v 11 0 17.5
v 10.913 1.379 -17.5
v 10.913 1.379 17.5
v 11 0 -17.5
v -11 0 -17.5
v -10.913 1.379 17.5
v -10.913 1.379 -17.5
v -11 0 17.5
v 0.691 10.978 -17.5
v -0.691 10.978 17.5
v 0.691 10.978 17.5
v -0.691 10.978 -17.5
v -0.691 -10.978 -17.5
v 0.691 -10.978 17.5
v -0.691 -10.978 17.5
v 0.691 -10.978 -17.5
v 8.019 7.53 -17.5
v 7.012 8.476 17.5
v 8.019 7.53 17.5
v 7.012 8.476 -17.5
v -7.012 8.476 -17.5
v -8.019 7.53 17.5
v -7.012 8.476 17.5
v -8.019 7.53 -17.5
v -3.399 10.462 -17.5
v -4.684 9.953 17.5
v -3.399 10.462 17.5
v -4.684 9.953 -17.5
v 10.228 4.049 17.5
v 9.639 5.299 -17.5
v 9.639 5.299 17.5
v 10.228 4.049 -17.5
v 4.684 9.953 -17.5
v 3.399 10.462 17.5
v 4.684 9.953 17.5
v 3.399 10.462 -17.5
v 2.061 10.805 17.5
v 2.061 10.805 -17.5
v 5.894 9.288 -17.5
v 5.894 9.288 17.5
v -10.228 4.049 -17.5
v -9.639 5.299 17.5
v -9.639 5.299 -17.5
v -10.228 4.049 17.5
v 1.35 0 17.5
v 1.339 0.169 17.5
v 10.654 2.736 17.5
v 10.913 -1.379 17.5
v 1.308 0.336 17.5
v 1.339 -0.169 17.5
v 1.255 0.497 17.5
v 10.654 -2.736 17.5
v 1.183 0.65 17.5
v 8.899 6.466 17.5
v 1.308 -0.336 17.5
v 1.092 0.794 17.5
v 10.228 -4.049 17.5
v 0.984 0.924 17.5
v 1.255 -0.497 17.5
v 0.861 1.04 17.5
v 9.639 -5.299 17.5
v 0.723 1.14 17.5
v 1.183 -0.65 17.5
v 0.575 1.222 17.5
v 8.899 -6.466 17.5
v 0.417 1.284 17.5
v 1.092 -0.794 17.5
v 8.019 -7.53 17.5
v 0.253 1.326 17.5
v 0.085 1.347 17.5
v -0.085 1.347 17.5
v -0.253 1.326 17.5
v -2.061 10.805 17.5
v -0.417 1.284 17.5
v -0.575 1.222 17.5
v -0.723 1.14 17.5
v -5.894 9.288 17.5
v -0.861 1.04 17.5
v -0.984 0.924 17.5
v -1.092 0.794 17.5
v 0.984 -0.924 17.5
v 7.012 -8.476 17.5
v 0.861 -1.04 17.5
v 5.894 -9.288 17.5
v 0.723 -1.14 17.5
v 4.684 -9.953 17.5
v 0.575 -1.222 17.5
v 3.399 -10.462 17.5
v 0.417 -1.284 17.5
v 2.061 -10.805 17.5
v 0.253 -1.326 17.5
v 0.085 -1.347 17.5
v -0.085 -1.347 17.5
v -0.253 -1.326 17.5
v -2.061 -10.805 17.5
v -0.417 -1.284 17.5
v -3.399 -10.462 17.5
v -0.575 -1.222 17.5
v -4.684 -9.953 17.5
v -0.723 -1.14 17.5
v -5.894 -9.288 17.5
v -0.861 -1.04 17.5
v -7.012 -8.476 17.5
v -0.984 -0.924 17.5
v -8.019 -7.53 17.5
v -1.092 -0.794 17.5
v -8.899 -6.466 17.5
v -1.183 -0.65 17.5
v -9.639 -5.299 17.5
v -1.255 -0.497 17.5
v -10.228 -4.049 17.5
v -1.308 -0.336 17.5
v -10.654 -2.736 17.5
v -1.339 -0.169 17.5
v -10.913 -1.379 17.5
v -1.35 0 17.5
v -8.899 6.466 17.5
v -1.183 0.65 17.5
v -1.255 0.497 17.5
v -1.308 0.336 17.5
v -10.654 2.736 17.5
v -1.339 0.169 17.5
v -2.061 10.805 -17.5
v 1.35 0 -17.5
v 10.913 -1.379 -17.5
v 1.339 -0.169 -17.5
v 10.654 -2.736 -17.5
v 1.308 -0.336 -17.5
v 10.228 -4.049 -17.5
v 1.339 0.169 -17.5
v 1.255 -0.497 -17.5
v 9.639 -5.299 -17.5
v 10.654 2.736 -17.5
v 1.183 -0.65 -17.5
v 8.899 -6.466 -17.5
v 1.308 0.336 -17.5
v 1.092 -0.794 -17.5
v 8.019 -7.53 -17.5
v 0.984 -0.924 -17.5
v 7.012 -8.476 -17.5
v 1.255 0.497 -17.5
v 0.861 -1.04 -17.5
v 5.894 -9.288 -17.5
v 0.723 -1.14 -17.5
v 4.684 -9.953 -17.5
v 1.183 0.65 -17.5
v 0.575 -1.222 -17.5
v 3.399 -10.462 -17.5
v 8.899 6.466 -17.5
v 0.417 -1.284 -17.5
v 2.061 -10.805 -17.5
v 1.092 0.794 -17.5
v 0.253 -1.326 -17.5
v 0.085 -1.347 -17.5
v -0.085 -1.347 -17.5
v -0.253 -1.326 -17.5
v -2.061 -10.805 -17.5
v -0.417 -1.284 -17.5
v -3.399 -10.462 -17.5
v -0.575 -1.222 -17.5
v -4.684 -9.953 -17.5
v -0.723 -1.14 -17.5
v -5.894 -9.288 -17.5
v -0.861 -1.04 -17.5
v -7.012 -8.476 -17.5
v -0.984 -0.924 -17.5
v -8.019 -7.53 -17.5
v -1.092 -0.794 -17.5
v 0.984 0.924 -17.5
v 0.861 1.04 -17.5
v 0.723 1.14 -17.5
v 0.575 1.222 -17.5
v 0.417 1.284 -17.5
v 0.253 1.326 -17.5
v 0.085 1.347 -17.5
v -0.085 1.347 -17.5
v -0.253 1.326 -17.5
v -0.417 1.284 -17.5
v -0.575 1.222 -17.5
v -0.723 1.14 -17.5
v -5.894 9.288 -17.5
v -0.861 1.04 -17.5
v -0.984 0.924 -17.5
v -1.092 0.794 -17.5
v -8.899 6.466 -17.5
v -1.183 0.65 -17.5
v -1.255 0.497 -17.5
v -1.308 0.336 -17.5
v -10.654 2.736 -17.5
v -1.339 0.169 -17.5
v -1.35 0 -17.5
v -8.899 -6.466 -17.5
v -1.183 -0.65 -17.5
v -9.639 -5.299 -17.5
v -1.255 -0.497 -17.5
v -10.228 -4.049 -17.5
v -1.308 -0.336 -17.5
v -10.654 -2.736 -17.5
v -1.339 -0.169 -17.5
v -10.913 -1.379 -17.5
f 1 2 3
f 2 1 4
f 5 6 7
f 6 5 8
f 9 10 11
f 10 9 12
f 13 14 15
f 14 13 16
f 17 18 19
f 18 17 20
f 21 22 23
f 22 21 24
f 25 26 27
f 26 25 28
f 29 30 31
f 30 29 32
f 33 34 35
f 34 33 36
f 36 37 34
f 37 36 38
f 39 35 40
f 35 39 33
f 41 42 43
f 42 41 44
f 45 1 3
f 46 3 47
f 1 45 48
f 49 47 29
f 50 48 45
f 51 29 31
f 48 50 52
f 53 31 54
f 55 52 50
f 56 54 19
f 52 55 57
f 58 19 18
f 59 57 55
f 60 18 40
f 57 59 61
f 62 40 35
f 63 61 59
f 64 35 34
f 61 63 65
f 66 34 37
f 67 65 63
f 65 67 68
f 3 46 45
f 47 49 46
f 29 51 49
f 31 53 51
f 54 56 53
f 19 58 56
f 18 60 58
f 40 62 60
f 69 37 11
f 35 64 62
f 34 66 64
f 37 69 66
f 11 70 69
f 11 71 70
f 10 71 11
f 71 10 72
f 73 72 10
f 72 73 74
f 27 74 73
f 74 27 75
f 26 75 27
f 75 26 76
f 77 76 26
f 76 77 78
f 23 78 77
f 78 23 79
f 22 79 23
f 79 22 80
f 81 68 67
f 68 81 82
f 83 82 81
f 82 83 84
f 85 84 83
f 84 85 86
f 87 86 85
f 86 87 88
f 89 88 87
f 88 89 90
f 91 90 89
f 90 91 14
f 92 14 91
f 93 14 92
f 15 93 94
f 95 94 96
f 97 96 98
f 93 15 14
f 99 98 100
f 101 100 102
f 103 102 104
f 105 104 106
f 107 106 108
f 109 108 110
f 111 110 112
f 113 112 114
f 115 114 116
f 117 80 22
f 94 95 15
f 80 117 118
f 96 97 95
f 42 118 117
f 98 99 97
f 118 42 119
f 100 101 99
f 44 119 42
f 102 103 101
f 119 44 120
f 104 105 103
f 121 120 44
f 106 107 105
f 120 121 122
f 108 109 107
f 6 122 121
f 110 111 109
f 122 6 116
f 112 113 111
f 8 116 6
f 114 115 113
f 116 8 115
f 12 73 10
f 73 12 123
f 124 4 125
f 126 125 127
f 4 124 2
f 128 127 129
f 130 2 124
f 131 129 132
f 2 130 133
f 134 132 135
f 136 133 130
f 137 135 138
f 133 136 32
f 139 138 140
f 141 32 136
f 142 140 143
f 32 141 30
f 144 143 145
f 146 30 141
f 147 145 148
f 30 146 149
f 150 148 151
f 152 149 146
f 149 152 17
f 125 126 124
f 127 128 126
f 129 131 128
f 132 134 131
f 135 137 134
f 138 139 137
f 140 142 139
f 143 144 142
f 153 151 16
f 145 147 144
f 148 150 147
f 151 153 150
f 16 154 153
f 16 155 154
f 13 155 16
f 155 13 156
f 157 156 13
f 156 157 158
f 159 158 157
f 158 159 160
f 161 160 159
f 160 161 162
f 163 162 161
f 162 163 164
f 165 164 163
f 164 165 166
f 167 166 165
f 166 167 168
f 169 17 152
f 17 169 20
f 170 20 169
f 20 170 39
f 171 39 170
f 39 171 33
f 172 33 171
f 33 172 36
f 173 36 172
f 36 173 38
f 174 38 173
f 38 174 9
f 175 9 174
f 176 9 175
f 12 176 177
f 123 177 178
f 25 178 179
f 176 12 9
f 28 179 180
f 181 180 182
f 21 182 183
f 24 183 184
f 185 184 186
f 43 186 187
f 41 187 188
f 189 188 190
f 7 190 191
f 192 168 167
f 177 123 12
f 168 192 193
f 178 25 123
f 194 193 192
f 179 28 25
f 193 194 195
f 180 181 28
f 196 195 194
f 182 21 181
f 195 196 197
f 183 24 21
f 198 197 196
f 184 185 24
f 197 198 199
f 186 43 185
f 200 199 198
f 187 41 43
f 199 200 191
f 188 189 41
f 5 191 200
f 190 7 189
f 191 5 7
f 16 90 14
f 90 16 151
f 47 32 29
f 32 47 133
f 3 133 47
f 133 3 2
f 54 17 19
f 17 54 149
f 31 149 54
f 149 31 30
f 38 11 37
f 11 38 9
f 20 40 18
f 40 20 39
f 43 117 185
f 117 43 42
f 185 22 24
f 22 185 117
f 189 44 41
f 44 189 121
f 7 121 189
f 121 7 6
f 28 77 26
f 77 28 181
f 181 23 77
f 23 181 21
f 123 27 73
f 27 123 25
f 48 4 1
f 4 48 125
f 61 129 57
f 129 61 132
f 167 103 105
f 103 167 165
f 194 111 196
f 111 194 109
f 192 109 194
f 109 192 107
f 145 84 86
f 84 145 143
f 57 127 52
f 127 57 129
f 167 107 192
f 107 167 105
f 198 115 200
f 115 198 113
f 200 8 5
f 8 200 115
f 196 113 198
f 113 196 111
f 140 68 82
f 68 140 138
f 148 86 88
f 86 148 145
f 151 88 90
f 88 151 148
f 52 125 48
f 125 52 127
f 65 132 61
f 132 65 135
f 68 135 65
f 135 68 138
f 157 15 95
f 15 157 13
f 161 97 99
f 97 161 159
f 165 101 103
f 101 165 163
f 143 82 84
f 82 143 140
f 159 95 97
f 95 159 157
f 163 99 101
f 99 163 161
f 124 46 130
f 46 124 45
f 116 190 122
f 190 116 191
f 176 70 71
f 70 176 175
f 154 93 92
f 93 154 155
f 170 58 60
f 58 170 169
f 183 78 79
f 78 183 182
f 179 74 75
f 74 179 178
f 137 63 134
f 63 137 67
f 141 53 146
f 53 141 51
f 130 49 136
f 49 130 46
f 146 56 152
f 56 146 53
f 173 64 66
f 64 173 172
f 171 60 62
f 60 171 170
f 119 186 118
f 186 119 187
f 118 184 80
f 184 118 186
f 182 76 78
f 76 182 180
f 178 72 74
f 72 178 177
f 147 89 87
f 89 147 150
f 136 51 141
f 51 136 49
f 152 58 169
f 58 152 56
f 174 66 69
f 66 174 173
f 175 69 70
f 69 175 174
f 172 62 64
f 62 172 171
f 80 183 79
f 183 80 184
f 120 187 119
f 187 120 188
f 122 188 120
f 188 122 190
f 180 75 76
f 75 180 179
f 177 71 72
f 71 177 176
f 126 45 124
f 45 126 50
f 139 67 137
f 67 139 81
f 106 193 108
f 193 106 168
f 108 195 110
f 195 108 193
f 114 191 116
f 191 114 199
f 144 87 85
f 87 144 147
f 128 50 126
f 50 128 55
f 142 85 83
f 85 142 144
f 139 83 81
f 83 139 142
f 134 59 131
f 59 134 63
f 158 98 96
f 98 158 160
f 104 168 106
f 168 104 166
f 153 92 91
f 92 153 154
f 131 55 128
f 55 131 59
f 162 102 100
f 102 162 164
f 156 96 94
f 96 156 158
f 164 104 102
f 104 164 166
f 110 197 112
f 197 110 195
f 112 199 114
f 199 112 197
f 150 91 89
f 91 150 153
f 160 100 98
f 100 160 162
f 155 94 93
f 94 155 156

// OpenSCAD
$fn = 50;


difference() {
	union() {
		translate(v = [0, 0, -17.5000000000]) {
			cylinder(h = 35, r = 11.0000000000);
		}
	}
	union() {
		translate(v = [0, 0, -100.0000000000]) {
			cylinder(h = 200, r = 1.3500000000);
		}
	}
}
